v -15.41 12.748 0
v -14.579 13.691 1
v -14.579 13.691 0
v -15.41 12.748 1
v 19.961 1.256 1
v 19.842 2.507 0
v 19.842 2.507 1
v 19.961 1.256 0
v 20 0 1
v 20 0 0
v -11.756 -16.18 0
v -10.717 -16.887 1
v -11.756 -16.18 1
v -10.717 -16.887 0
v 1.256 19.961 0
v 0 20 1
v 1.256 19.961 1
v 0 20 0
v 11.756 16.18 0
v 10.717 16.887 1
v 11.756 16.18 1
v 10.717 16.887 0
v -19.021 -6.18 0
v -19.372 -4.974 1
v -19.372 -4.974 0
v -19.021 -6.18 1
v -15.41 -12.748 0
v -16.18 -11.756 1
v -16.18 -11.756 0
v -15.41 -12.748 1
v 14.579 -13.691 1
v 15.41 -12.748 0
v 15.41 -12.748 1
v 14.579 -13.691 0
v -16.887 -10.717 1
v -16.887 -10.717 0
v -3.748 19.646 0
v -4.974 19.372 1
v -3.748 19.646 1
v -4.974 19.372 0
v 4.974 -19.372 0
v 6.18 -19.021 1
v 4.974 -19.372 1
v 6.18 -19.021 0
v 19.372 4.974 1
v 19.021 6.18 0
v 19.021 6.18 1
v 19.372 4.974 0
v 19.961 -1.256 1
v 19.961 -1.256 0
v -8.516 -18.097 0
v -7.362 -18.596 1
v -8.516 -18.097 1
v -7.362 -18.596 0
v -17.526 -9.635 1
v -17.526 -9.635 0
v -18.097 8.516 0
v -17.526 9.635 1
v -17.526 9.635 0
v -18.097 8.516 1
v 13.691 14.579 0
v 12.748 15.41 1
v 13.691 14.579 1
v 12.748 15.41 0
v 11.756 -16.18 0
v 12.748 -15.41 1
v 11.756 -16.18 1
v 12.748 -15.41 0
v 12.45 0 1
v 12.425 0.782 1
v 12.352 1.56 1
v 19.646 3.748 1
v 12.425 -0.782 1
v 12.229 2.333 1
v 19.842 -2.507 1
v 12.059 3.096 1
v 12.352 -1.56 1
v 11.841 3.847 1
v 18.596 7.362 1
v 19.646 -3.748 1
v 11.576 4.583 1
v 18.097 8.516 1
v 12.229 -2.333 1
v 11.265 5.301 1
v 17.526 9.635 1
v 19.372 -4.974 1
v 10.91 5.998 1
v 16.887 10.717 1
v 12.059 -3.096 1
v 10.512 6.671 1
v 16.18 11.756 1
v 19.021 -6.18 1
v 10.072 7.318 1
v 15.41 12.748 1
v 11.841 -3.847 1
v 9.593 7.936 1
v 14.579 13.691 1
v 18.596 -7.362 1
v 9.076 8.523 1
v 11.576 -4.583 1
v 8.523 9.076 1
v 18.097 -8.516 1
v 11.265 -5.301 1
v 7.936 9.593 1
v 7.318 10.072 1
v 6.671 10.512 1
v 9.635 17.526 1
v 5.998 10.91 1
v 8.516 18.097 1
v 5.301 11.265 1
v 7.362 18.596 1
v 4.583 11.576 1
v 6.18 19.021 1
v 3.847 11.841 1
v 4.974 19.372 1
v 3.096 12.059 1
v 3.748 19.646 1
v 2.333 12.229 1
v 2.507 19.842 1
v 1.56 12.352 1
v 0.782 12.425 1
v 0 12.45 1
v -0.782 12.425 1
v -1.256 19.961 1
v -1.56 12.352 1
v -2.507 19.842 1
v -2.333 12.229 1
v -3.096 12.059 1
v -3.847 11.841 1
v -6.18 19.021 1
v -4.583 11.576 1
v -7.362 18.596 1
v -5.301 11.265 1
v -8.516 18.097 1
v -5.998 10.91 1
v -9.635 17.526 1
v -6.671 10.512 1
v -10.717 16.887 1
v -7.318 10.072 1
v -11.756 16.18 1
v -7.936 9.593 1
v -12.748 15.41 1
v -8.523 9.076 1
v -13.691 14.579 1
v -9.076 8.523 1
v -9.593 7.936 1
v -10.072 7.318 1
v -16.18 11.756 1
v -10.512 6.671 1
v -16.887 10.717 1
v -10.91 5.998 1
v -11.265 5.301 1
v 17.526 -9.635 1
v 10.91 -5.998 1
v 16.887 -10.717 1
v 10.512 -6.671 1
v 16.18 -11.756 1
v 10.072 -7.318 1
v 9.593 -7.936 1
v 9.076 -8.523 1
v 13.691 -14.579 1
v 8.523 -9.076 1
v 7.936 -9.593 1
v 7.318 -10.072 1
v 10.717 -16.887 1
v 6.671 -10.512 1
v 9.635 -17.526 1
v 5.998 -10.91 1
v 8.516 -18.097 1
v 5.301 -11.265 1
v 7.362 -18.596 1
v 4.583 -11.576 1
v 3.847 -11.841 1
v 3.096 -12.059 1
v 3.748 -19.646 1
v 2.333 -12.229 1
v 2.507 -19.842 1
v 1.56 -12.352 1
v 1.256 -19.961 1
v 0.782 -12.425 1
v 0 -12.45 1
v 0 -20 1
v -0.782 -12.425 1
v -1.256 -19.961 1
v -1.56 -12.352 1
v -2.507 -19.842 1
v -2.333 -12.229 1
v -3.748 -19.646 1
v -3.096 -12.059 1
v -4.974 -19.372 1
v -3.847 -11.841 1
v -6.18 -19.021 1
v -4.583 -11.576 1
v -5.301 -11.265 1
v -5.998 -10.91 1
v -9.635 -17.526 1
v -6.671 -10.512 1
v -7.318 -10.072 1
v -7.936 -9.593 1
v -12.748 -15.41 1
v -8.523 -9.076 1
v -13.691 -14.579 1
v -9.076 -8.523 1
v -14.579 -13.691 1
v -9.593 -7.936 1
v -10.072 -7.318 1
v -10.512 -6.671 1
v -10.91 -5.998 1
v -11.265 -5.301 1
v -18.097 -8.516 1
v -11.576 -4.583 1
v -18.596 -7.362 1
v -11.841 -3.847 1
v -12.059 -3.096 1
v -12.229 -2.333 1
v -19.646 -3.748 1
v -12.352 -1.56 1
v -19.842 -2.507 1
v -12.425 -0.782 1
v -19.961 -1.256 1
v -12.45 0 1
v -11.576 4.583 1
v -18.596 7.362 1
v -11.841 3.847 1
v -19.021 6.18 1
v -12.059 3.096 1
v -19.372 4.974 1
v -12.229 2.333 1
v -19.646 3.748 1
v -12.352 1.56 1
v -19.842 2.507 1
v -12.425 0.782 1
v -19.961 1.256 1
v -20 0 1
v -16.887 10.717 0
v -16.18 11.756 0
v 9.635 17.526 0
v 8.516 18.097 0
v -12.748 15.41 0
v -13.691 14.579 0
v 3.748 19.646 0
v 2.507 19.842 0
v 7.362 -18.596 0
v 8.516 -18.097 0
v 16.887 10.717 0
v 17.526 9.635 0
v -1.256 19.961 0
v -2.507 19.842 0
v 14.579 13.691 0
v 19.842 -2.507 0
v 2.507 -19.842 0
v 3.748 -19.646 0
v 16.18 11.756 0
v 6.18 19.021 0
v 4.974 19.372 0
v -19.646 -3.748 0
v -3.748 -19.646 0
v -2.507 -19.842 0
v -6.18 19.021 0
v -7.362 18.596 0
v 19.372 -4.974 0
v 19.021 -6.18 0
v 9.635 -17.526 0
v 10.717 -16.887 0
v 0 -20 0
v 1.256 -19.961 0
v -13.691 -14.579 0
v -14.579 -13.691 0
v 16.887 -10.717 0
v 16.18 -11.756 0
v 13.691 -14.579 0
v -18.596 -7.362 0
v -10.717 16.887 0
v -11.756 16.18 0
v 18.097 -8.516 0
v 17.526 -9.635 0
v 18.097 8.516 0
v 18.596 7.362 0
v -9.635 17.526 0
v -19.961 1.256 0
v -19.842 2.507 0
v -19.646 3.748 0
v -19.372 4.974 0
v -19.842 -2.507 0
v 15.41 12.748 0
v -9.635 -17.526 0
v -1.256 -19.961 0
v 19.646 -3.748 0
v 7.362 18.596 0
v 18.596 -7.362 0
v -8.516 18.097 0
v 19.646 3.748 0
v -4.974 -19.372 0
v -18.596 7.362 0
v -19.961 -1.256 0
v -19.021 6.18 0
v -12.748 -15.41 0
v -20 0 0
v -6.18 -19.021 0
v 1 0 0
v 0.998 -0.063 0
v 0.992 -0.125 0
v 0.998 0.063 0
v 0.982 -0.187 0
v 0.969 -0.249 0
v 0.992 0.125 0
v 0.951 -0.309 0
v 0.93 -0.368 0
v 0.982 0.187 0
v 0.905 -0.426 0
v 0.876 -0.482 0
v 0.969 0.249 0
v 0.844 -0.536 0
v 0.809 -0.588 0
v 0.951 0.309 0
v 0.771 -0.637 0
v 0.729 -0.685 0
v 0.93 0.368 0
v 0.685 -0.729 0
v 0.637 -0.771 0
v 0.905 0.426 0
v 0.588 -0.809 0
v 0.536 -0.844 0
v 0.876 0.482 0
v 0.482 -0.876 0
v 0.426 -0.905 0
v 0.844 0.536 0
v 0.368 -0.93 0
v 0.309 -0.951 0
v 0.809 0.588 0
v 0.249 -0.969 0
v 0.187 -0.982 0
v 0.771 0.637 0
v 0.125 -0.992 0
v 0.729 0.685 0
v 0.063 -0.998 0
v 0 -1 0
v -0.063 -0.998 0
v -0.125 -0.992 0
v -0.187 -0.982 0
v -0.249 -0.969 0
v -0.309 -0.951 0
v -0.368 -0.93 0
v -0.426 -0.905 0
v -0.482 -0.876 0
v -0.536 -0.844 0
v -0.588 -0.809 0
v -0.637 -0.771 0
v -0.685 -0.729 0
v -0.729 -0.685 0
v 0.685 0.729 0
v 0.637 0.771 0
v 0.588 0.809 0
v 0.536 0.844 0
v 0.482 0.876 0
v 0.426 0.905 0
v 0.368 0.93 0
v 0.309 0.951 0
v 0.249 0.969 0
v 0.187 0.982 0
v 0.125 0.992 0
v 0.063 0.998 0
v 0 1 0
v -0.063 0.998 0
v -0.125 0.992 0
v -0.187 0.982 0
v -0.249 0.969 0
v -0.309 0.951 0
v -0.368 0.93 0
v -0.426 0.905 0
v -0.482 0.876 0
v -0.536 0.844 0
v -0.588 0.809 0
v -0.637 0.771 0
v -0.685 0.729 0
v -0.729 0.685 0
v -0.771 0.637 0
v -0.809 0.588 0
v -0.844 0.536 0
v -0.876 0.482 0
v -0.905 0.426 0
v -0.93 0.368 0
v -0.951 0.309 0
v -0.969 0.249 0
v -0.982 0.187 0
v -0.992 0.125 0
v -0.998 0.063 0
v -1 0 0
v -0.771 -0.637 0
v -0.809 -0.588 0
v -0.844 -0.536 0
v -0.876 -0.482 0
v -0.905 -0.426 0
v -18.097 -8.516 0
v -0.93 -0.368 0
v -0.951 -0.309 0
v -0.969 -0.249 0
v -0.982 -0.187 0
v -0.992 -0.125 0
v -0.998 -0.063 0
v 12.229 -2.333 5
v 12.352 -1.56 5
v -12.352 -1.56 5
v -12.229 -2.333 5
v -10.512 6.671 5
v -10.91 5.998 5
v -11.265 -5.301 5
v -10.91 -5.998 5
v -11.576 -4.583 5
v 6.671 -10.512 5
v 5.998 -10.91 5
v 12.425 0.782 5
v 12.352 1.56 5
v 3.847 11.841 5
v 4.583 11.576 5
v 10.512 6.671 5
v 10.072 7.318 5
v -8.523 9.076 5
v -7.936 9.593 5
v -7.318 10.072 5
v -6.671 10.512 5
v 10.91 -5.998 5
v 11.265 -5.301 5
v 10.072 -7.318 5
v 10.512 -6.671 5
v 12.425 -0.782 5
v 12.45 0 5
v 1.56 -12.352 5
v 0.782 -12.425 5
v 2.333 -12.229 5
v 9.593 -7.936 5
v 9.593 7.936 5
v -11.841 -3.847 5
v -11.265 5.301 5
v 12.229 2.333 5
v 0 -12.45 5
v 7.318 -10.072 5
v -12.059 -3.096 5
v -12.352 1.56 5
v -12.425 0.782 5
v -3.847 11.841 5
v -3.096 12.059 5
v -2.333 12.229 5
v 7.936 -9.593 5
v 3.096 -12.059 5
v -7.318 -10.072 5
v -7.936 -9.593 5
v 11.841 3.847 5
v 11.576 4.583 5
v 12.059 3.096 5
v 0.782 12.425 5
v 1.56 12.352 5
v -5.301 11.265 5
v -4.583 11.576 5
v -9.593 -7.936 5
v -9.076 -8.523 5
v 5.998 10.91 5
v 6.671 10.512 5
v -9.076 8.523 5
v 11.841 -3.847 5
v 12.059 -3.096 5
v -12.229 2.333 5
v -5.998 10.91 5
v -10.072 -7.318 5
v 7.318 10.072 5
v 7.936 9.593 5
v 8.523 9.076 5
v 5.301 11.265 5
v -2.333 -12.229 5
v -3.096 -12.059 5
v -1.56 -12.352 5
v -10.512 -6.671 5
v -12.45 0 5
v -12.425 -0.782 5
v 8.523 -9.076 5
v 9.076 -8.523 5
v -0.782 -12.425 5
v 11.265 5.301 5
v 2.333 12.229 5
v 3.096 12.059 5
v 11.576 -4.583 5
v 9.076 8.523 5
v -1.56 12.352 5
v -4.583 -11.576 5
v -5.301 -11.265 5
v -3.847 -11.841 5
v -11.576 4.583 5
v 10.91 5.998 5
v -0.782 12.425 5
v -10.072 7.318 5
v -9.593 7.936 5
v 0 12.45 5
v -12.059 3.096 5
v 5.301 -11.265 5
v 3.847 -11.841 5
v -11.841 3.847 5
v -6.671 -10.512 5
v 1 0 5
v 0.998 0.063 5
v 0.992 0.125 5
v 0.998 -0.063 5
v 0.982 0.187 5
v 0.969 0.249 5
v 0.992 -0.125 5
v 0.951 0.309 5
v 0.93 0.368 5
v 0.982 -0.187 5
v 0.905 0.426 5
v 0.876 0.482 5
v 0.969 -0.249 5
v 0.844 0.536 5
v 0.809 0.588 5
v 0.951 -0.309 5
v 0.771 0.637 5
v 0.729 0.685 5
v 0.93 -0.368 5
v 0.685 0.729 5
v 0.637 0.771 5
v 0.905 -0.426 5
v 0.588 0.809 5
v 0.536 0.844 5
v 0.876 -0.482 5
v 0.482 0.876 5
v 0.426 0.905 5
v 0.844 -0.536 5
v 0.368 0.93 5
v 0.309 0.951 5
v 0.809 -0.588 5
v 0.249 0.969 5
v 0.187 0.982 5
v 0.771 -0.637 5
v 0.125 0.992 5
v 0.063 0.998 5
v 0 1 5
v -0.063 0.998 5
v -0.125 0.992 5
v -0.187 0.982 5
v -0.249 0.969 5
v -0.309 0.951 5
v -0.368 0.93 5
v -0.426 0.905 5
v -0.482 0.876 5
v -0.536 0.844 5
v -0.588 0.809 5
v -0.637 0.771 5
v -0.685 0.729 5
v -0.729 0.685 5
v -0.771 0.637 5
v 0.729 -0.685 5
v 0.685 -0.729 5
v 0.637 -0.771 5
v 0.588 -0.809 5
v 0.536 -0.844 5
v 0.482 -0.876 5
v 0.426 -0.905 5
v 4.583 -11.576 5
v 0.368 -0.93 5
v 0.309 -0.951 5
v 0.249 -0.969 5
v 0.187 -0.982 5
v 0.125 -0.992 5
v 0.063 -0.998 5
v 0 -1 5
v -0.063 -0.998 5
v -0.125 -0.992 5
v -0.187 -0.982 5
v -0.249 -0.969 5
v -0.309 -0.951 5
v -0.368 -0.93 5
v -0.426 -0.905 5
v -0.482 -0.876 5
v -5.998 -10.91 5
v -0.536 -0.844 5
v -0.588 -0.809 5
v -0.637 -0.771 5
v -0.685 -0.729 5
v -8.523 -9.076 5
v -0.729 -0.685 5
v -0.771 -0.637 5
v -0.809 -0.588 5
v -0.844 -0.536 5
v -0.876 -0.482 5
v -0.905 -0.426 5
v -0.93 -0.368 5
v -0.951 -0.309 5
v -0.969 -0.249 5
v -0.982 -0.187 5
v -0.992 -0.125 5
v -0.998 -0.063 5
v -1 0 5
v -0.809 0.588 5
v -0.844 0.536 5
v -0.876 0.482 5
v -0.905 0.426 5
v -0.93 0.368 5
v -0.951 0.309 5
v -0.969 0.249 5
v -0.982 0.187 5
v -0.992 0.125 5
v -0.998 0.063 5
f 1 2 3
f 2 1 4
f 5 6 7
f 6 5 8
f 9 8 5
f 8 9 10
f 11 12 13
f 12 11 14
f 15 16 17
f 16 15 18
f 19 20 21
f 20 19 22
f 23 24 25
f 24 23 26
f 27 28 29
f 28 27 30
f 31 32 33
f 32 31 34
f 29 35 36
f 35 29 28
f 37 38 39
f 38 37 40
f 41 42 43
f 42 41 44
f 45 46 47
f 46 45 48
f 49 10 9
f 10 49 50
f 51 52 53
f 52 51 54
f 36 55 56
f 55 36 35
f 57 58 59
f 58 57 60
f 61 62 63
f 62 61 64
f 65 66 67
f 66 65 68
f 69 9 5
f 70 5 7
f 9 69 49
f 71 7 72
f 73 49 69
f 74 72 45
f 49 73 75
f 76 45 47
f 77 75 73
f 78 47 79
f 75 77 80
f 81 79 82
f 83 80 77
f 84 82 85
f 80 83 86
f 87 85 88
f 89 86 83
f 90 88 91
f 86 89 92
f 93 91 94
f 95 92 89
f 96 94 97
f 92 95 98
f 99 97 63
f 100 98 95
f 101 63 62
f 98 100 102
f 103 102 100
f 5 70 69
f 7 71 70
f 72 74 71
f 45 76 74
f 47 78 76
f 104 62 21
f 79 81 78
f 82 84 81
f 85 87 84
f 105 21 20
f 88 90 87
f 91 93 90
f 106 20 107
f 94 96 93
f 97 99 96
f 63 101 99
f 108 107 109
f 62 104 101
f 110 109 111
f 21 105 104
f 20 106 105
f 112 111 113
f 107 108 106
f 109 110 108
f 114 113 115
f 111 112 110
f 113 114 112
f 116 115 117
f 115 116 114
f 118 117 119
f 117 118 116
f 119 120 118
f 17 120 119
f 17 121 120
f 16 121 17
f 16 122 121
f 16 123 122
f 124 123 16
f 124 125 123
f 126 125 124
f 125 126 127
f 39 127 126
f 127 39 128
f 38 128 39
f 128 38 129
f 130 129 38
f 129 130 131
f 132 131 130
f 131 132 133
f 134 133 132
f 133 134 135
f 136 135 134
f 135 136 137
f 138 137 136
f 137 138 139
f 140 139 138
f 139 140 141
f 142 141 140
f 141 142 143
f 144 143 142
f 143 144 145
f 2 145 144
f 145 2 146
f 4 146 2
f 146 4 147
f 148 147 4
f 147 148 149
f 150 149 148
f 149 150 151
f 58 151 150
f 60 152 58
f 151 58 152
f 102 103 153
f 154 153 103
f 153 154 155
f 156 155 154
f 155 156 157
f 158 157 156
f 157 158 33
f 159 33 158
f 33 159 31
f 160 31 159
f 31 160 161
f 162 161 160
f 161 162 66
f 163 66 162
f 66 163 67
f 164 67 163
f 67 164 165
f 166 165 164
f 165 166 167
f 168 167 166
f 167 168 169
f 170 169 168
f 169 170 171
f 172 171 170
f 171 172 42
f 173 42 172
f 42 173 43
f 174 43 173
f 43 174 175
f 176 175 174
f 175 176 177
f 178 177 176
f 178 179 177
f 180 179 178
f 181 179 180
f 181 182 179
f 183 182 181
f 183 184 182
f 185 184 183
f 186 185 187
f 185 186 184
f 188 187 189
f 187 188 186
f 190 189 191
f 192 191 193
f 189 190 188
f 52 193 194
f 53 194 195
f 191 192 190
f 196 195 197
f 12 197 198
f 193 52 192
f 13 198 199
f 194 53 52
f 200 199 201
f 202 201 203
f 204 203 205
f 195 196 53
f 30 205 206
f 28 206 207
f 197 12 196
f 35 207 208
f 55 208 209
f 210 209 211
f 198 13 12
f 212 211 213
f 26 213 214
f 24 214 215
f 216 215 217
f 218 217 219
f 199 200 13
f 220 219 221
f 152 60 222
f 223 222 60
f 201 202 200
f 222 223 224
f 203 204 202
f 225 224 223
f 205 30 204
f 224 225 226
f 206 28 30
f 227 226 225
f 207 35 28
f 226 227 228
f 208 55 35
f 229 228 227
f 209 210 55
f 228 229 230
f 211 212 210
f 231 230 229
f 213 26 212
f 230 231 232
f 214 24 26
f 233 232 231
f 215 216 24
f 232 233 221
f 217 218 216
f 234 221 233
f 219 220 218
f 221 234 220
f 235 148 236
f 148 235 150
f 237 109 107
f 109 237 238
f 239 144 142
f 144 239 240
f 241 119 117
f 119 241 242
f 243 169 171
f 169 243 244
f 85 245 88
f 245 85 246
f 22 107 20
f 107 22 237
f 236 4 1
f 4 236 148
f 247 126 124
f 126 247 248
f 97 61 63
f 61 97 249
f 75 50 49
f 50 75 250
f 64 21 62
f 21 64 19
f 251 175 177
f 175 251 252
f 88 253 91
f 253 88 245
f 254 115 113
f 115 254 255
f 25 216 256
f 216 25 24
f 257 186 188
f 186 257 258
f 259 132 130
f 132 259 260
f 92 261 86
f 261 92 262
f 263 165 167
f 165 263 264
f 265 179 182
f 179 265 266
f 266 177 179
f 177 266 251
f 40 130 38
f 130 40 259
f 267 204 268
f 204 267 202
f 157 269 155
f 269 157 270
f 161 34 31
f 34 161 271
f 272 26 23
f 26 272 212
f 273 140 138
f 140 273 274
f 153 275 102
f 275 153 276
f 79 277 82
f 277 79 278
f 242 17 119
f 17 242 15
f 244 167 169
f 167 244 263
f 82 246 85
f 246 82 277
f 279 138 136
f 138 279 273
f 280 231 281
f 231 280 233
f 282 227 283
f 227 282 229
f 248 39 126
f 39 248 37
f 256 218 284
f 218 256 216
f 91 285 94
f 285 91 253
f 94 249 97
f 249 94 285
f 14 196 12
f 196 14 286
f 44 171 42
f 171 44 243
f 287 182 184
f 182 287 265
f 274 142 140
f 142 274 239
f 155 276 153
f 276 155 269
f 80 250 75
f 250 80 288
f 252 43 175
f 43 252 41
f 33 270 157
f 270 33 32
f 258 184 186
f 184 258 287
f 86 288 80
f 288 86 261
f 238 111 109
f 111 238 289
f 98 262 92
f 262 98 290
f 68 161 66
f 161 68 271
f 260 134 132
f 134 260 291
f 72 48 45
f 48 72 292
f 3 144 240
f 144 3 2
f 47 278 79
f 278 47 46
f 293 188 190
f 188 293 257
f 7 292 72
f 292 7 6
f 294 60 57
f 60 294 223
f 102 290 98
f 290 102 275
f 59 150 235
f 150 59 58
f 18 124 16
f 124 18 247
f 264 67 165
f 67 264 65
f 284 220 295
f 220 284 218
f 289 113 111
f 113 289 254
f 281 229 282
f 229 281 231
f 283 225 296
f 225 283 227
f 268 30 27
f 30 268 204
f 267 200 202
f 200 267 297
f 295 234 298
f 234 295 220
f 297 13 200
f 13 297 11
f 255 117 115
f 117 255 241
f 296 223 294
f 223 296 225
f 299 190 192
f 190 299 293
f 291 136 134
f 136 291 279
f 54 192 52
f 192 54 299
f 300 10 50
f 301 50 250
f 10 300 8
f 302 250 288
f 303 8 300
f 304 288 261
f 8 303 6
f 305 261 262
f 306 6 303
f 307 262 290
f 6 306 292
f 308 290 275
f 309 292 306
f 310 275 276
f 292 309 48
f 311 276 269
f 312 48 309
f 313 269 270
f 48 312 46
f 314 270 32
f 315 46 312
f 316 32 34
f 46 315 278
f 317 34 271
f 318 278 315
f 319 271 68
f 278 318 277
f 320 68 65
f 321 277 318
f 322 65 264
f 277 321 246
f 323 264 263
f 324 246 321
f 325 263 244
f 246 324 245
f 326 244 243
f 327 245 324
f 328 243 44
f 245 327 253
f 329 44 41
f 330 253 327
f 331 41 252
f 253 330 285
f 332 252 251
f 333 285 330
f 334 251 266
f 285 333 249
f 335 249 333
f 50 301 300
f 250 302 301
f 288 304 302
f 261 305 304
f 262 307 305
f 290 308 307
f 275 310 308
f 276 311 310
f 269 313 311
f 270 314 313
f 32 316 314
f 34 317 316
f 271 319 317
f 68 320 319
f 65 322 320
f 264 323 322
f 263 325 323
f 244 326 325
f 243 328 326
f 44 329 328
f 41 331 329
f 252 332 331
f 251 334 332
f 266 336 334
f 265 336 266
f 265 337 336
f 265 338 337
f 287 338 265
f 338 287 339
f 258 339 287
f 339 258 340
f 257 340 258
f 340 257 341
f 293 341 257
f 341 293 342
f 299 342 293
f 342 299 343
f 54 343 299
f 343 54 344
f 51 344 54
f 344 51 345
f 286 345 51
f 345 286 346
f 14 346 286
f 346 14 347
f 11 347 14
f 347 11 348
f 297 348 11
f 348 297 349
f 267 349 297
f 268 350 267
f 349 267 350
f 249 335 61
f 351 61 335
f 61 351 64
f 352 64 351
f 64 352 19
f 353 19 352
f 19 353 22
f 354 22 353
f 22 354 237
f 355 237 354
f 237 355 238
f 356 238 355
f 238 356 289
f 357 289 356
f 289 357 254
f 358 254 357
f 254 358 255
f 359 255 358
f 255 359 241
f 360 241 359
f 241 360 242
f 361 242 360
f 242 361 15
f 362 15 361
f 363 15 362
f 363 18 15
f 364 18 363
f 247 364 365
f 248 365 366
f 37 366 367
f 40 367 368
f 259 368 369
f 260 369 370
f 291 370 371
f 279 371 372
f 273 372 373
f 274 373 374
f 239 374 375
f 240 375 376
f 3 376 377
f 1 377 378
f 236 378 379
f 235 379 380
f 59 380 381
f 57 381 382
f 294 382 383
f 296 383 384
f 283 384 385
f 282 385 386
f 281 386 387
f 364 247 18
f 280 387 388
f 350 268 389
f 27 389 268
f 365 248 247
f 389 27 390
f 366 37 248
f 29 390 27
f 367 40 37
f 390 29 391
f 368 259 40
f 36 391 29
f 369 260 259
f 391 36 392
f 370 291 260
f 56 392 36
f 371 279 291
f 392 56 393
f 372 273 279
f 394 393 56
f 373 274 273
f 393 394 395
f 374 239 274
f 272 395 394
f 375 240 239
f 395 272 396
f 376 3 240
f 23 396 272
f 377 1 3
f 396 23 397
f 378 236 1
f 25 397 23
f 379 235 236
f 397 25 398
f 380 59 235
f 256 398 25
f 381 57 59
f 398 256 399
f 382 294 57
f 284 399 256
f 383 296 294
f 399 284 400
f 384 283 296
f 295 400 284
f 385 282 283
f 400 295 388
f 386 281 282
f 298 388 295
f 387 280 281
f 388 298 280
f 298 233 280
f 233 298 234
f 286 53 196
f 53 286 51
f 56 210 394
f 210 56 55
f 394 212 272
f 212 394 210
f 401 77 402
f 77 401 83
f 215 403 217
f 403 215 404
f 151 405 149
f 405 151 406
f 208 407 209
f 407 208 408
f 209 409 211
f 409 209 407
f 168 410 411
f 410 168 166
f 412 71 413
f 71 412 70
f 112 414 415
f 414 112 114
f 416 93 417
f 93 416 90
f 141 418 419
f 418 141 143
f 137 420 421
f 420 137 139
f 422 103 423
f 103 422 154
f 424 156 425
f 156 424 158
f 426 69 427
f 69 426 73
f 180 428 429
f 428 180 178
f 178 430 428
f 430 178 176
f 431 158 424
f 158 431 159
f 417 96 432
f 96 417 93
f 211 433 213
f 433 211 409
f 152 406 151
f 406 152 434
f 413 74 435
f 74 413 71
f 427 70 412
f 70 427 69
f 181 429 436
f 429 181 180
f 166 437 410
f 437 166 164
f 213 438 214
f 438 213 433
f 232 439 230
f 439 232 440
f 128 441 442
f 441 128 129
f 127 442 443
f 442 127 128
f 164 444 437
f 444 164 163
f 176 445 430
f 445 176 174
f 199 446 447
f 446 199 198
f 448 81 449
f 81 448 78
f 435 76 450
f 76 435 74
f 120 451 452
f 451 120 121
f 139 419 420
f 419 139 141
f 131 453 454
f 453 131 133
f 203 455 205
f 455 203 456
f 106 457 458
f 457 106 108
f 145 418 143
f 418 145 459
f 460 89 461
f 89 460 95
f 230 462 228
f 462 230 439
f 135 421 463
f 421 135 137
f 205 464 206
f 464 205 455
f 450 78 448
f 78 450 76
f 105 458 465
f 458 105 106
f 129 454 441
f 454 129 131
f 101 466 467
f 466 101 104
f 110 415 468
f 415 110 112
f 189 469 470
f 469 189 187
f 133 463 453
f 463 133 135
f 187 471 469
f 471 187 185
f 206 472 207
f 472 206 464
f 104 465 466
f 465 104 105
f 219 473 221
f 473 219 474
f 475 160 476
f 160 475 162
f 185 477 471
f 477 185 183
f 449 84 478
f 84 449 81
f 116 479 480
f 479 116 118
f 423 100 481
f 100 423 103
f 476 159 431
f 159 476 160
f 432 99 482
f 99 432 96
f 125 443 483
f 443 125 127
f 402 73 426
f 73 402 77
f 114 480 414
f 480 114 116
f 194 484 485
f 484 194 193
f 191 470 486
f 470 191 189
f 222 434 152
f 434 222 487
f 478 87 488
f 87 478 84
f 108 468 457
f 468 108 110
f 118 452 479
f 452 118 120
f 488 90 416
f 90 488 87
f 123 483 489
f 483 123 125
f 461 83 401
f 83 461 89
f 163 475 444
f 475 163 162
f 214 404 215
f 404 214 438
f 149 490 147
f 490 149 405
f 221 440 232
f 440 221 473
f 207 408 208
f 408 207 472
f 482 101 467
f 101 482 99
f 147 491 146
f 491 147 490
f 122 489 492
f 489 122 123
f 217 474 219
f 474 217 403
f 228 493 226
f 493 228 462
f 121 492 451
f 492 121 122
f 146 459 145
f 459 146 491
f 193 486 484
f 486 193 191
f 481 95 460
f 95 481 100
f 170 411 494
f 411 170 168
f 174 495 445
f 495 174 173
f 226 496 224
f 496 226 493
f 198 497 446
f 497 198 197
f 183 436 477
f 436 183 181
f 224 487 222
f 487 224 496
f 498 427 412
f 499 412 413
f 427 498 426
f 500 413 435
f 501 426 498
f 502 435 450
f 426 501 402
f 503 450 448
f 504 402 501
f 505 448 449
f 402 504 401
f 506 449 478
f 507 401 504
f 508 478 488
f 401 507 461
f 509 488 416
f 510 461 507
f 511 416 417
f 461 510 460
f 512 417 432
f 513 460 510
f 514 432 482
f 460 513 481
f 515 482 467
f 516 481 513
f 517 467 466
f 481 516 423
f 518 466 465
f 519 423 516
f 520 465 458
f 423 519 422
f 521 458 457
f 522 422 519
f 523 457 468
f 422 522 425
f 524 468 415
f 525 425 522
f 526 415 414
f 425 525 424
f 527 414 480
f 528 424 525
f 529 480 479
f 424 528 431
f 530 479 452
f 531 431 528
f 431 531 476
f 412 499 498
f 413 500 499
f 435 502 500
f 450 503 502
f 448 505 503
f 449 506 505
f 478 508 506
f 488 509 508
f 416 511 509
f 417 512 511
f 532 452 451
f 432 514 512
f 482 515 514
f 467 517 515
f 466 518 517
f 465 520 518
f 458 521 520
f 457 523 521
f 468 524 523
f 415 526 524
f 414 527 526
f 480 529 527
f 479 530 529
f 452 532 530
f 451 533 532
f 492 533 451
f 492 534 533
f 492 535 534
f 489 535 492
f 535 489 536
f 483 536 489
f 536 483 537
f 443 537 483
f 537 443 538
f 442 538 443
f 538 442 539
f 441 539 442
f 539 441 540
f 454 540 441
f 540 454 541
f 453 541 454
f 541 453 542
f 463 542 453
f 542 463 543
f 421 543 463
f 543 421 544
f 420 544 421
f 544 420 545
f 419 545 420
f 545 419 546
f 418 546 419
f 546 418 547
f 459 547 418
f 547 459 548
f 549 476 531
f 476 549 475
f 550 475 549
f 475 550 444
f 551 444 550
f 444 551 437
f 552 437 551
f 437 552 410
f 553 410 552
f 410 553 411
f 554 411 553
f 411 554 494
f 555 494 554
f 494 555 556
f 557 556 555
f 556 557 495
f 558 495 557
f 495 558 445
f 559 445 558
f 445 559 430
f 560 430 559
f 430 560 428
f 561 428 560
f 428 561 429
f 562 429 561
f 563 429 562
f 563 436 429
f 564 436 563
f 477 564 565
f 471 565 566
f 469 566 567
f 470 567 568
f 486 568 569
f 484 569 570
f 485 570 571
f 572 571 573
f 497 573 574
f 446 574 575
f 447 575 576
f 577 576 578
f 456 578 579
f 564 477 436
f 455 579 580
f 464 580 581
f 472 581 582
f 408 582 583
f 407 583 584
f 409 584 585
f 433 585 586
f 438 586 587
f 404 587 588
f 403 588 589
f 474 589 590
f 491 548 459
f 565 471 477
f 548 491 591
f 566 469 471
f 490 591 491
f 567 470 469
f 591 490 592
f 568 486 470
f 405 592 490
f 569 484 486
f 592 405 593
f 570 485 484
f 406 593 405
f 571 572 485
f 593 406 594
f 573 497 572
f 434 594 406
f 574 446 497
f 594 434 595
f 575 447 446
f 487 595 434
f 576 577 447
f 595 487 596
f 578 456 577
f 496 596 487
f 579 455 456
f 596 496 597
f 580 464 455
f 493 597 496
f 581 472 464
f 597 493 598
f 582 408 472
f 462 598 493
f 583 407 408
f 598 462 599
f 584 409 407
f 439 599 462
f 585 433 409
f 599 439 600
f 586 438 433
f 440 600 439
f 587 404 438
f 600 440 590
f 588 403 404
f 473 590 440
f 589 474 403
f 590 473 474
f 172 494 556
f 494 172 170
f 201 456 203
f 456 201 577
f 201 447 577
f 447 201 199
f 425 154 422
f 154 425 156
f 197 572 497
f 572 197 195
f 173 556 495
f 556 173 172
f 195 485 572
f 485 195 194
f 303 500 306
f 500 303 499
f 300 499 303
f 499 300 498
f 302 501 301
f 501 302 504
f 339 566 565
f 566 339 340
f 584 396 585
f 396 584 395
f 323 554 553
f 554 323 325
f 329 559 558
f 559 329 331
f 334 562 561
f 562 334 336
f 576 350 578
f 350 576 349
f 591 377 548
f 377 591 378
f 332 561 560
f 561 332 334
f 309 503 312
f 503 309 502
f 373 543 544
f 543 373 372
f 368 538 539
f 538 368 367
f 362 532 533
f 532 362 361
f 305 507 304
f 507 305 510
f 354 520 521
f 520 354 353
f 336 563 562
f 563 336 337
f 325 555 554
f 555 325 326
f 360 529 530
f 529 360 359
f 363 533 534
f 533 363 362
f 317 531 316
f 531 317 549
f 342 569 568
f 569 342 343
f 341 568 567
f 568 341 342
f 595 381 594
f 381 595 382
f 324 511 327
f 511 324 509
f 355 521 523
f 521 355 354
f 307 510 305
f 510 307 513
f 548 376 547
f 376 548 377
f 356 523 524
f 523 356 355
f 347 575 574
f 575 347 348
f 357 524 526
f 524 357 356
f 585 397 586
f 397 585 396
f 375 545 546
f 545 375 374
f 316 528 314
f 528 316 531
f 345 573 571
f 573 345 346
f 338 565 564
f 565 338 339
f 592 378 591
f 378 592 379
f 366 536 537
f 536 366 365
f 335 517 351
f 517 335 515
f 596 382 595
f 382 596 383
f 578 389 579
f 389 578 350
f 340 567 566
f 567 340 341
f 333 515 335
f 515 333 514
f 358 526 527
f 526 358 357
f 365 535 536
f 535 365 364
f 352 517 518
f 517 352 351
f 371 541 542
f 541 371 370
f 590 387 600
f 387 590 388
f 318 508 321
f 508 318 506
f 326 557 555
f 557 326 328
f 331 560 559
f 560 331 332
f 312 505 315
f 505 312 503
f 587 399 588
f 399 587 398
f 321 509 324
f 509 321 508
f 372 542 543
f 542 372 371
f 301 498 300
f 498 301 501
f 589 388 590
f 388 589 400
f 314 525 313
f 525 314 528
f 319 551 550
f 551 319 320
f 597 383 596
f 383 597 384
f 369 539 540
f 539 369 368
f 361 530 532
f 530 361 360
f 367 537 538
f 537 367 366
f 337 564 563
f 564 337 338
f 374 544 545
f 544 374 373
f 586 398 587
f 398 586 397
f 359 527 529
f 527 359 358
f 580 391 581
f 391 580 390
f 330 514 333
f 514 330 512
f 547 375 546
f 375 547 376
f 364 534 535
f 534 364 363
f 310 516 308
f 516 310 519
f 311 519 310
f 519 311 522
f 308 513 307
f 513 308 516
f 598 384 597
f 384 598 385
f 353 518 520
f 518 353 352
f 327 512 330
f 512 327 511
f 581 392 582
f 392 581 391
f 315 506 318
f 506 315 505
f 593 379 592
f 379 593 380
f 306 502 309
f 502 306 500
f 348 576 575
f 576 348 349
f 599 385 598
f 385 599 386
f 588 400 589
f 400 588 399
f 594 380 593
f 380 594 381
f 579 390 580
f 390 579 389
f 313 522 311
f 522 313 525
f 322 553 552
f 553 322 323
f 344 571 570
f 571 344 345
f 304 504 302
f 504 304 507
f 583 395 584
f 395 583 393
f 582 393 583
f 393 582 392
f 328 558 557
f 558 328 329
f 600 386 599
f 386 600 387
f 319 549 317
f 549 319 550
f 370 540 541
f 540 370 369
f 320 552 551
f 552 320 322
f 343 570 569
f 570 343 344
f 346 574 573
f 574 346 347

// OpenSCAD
//funcao_2d_array_cilindros(r_splh,d_splh,10+splh_x/2-diff_splh_x/2+diff_splh_z,5,1,1,res,"Conjunto Sample Holder");
res=100;
r_splh=1;
alt=100;

difference(){
    translate([0,0,0]){
        cylinder(1,20,20,$fn=res);
        cylinder(5,12.45,12.45,$fn=res);
    }
    #translate([0,0,-15])
    #cylinder(alt,r_splh,r_splh,$fn=res);
}
